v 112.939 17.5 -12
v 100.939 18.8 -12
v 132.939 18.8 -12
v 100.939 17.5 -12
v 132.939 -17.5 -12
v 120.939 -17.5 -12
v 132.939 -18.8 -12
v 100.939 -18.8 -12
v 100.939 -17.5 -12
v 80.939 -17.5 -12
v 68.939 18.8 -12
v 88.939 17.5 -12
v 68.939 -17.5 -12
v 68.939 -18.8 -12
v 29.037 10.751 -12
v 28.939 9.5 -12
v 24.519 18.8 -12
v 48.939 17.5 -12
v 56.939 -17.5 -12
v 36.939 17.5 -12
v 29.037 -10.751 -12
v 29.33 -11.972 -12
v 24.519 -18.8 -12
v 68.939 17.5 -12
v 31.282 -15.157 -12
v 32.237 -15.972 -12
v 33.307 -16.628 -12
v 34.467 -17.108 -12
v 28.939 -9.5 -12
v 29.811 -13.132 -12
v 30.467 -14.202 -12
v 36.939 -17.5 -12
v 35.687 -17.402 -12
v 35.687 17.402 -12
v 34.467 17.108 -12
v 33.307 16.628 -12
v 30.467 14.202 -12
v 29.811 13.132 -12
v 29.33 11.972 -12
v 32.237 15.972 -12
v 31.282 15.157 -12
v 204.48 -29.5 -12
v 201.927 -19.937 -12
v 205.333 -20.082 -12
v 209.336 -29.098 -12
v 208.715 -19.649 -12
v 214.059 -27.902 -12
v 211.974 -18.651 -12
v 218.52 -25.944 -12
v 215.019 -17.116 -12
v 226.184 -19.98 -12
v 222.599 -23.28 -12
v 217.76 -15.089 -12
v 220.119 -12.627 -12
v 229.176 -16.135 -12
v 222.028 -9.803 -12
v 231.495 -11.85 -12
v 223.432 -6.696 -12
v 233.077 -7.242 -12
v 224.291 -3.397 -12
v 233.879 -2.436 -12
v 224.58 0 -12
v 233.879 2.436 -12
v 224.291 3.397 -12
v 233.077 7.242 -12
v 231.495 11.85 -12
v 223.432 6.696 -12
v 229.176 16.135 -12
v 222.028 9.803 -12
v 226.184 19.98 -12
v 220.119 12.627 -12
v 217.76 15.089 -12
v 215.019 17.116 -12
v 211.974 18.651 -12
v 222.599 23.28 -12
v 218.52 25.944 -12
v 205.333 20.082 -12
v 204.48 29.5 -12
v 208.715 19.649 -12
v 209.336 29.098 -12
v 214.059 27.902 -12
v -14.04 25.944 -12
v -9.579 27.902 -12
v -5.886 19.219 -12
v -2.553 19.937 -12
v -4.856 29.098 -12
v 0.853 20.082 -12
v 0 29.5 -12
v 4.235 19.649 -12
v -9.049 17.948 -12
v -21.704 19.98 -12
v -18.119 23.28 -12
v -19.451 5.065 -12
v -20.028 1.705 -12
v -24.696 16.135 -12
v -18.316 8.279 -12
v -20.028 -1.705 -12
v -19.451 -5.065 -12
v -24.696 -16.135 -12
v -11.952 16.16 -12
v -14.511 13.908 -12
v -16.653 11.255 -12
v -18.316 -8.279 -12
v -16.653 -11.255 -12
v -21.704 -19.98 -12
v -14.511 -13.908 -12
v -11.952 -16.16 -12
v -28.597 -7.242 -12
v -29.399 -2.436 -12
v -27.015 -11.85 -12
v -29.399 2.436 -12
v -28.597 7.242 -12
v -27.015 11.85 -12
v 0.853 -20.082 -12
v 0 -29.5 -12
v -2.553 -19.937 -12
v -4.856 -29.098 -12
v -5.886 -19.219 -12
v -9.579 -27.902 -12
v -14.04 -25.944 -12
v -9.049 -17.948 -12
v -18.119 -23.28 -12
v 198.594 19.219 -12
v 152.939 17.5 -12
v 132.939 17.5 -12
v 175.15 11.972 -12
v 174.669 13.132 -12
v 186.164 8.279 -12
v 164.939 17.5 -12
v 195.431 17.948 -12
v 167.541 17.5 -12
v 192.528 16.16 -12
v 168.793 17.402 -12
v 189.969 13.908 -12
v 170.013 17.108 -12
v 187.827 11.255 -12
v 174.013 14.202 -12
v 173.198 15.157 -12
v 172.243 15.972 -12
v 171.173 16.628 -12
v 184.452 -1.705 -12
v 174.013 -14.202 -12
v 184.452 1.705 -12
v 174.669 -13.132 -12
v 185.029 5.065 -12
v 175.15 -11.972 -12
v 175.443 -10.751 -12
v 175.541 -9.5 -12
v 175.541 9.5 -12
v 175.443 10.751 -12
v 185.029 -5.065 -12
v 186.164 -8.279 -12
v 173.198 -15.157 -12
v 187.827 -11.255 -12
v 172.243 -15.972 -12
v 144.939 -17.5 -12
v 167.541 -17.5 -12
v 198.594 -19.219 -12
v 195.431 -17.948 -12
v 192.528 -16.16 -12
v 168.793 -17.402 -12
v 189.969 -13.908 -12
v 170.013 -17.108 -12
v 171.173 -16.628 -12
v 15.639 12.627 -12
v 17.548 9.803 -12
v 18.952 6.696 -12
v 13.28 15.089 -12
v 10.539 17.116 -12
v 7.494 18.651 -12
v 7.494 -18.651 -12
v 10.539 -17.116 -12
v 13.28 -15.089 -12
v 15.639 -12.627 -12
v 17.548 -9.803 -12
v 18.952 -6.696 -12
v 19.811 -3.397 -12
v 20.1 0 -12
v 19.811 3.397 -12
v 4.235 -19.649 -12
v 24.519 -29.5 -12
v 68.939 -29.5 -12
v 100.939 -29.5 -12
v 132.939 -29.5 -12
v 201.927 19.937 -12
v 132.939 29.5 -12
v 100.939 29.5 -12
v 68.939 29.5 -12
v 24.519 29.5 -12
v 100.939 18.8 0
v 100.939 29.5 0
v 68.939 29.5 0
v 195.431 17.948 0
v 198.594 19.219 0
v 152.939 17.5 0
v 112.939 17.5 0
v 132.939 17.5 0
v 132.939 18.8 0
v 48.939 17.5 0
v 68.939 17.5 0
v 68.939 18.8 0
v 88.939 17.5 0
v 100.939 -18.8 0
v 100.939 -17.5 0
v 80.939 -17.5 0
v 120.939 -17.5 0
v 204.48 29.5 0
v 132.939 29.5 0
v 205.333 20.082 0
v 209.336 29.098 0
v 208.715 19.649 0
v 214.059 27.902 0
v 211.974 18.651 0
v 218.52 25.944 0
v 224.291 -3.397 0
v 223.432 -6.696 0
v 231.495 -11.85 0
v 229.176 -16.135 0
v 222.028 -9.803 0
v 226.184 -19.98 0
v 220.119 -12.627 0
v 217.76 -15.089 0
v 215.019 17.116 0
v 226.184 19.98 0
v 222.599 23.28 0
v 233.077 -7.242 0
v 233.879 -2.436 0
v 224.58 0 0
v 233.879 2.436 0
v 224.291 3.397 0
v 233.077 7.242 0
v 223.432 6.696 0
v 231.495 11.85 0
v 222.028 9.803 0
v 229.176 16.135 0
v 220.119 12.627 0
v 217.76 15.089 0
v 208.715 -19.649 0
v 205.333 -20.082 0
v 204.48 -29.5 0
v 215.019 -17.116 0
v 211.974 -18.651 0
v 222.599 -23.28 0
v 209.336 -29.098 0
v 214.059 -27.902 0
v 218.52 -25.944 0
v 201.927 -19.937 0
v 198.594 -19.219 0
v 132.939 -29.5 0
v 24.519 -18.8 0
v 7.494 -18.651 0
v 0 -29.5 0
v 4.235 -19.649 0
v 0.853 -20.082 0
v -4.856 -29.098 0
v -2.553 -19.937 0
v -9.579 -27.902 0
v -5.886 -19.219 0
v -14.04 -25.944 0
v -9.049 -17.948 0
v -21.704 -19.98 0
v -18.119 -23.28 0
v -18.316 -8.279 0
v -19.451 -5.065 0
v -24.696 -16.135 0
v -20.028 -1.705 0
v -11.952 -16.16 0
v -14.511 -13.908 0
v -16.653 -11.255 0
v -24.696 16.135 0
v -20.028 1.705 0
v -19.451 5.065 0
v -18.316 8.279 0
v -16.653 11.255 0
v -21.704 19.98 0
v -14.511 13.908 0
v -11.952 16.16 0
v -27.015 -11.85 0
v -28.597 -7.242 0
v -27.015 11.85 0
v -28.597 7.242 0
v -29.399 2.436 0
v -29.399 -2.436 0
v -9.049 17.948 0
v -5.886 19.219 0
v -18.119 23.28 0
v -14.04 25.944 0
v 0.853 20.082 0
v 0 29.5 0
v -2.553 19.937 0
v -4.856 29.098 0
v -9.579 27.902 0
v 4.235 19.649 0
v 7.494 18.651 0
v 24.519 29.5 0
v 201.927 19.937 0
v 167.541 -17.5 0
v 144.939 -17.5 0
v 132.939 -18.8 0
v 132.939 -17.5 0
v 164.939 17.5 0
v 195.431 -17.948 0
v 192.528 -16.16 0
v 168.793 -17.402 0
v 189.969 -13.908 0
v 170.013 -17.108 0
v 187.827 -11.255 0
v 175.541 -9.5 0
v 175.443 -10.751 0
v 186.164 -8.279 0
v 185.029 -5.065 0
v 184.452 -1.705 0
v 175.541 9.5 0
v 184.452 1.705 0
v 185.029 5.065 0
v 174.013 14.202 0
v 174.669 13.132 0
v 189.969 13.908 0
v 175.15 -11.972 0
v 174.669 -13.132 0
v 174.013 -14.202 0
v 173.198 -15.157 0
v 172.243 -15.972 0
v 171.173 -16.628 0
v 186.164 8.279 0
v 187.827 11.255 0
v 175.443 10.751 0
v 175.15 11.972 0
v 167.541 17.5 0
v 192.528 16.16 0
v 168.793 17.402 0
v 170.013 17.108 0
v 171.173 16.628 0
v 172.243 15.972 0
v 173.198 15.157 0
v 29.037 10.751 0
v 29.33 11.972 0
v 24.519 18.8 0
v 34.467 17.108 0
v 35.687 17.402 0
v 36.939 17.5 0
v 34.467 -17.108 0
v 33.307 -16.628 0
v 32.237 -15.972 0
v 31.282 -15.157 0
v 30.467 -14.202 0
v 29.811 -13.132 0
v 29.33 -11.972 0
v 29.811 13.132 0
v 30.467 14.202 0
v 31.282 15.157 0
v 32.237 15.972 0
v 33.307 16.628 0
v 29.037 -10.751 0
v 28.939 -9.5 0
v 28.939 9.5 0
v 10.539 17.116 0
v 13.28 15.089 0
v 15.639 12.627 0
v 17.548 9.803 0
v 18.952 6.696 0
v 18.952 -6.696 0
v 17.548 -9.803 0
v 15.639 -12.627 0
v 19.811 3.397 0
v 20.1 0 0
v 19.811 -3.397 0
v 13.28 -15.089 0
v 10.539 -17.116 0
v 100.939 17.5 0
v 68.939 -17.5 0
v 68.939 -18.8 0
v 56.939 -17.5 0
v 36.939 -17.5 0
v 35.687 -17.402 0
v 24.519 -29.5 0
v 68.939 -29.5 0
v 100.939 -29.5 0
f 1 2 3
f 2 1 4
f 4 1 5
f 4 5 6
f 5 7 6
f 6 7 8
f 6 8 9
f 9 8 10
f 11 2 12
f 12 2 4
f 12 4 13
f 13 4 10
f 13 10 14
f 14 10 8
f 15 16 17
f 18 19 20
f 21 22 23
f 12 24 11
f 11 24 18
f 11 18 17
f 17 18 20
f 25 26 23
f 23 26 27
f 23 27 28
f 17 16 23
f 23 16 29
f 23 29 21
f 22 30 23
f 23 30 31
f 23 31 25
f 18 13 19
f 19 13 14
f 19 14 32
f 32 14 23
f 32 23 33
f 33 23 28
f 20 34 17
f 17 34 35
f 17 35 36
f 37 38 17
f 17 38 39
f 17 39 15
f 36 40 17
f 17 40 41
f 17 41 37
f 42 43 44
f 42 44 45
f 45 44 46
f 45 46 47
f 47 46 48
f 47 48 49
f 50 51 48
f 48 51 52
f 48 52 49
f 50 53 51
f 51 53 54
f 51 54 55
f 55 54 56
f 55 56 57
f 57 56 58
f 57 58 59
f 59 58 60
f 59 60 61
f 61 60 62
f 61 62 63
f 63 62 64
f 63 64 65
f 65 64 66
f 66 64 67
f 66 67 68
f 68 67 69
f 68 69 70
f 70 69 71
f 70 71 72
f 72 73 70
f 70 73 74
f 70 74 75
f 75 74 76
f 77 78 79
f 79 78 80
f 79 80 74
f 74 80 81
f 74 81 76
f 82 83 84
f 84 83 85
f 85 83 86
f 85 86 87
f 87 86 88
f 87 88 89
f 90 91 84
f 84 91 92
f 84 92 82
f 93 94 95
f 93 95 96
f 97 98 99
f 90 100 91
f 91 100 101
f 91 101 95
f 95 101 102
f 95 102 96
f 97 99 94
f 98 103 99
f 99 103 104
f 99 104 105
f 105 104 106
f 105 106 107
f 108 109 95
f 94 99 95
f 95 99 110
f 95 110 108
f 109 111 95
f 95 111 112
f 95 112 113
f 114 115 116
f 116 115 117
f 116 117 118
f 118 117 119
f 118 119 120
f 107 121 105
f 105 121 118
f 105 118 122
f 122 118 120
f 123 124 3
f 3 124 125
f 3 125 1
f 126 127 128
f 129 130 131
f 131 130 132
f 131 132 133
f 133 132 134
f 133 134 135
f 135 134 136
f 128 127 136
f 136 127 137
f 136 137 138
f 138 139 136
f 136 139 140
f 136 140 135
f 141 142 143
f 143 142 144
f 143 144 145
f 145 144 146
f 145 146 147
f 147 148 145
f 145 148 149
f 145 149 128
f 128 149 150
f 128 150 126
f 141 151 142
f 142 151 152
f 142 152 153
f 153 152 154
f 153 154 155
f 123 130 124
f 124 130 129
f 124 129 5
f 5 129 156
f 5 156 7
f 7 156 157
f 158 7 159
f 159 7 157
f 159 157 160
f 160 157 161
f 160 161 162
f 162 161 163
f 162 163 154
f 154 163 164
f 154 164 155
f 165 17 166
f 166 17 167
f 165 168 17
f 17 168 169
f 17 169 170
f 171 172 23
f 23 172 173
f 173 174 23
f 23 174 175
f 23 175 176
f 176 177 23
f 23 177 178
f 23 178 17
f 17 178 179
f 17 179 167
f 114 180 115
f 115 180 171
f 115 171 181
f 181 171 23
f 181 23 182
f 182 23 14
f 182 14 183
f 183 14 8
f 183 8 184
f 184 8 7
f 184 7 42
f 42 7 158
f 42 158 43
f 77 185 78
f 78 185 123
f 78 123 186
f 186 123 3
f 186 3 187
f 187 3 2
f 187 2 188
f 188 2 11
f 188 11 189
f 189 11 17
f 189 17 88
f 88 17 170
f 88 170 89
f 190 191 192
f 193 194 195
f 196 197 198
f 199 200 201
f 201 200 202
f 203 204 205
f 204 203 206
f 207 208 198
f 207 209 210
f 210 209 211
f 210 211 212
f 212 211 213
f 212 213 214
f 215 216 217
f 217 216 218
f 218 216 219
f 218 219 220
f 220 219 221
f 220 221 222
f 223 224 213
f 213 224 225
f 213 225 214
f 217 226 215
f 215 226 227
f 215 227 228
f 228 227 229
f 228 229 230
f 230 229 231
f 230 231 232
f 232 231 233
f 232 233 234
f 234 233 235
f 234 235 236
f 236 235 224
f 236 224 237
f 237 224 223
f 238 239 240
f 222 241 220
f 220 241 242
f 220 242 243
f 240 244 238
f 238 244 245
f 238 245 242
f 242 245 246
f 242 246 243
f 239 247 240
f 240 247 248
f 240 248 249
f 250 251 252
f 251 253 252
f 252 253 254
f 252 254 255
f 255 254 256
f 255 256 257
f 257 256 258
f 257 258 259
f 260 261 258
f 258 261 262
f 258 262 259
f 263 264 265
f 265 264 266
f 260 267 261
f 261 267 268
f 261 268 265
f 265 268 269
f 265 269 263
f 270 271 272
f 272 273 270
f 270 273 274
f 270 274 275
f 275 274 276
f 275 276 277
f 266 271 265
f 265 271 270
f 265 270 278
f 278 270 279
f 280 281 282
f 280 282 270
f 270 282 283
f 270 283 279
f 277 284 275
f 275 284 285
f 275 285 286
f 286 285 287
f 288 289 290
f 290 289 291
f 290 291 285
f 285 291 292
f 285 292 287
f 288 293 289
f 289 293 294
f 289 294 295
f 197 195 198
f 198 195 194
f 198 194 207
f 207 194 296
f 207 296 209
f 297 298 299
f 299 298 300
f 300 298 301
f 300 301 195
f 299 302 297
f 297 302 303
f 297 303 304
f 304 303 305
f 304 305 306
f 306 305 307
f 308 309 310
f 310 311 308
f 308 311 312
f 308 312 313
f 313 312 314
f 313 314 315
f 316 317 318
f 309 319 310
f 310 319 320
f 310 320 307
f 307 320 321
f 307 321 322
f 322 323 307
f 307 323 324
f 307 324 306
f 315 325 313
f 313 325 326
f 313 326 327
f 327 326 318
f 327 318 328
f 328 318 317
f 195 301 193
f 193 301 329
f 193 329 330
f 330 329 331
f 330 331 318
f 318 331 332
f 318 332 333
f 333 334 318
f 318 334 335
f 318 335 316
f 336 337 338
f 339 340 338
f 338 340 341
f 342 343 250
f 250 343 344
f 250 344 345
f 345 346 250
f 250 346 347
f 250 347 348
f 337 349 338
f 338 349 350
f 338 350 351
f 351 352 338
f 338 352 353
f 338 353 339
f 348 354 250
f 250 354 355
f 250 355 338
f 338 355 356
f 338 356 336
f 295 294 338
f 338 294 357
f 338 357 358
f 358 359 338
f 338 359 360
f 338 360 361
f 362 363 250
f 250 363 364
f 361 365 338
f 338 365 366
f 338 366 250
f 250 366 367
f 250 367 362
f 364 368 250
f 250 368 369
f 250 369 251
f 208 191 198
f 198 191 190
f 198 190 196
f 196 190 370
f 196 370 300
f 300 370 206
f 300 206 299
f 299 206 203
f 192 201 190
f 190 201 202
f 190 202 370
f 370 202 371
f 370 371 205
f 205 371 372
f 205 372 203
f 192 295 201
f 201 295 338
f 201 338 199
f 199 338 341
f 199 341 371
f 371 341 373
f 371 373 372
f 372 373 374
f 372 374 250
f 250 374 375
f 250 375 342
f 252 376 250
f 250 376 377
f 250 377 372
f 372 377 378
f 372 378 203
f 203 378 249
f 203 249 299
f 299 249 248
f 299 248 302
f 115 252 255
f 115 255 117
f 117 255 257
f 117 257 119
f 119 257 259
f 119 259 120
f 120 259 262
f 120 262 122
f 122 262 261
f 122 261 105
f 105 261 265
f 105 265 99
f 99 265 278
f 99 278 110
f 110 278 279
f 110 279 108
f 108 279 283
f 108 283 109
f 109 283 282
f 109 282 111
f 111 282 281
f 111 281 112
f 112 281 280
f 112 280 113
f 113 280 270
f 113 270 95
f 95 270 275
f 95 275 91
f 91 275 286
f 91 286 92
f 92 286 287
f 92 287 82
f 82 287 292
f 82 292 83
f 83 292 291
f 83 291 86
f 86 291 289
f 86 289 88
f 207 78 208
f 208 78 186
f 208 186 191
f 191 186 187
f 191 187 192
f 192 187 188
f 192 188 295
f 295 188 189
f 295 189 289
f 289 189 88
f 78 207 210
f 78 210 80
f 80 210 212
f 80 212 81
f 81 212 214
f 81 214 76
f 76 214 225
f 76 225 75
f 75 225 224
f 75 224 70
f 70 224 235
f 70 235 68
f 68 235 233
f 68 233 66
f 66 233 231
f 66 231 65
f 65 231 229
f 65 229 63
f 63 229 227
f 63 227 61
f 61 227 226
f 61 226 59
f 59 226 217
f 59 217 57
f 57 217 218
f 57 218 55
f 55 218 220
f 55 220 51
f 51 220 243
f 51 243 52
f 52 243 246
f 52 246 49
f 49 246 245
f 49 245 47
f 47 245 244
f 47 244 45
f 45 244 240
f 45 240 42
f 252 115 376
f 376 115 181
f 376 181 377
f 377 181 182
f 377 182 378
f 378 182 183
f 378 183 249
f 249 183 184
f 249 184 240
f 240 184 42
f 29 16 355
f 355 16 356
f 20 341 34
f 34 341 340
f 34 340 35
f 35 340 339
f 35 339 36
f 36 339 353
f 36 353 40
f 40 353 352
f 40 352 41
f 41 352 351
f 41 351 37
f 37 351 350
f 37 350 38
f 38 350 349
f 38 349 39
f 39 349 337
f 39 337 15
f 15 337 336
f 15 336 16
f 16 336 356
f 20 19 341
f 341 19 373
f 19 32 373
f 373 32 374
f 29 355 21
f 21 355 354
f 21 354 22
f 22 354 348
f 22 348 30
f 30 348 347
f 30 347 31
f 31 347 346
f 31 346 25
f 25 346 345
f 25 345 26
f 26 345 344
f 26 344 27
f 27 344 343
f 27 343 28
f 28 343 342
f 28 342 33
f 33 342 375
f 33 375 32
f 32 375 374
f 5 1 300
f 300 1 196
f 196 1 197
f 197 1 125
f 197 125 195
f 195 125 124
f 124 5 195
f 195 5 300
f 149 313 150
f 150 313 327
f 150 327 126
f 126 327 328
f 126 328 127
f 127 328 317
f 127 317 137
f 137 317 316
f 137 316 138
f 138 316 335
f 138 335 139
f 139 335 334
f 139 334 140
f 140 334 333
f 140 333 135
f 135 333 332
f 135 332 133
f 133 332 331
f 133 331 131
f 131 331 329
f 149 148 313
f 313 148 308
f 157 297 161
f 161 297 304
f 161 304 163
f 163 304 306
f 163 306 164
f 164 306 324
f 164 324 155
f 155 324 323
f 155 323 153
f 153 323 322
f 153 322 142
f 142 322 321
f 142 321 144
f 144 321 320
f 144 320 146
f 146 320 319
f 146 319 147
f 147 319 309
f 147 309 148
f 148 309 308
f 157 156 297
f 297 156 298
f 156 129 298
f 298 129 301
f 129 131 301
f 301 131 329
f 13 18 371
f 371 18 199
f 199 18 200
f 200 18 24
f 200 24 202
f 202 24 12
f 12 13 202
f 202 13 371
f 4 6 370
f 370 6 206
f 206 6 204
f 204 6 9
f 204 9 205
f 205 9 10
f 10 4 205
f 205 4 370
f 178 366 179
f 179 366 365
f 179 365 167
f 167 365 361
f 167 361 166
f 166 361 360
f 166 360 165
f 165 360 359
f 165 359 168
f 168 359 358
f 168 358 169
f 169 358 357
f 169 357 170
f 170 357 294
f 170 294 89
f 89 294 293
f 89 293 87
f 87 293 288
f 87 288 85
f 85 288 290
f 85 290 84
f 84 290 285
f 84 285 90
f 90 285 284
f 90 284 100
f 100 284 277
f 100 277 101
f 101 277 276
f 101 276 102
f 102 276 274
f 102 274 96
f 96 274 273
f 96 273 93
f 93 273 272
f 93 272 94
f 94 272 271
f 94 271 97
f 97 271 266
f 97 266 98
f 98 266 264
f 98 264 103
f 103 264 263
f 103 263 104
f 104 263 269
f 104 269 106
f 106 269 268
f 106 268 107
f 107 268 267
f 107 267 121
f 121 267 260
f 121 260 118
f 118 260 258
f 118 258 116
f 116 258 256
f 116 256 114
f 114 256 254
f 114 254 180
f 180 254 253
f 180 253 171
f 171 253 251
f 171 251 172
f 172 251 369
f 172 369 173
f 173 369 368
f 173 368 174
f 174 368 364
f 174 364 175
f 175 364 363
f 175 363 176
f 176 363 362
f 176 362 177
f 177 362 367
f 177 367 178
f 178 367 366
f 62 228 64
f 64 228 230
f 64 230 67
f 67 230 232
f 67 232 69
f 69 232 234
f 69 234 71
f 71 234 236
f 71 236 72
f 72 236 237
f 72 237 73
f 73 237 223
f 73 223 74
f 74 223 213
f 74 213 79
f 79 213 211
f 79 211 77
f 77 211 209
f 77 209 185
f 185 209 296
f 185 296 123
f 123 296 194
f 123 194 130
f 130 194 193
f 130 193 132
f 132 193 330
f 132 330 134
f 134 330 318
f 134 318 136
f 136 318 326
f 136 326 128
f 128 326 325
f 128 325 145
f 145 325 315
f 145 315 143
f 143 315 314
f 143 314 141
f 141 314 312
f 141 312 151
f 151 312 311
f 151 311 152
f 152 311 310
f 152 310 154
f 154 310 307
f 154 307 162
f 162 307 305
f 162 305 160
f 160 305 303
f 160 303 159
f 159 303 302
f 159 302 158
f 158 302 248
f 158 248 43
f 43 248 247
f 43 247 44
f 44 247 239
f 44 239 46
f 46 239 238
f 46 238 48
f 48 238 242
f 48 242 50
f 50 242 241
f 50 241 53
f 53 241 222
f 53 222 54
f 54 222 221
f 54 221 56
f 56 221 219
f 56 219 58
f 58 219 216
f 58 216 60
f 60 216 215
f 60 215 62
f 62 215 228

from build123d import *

# Parameters (mm, degrees)
BOSS_EXTRUDE2_DEPTH = 12
CUT_EXTRUDE4_DEPTH  = 12
SKETCH8_R           = 20.1
CUT_EXTRUDE5_DEPTH  = 19
SKETCH9_R           = 20.1
CUT_EXTRUDE6_DEPTH  = 19


with BuildPart() as part:
    # Sketch1 → Boss-Extrude2 (new body)
    with BuildSketch(Plane.XY):
        with BuildLine():
            Line((0, 29.5), (204.48, 29.5))
            ThreePointArc((204.48, 29.5), (233.98, 0), (204.48, -29.5))
            Line((204.48, -29.5), (0, -29.5))
            ThreePointArc((0, -29.5), (-29.5, 0), (0, 29.5))
        make_face()
    extrude(amount=-BOSS_EXTRUDE2_DEPTH)

    # Sketch7 → Cut-Extrude4 (cut)
    with BuildSketch(Plane.XY):
        with BuildLine():
            Line((56.938938215, -17.5), (36.938938215, 17.5))
            ThreePointArc((36.938938215, 17.5), (31.282083966, 15.156854249), (28.938938215, 9.5))
            Line((28.938938215, 9.5), (28.938938215, -9.5))
            ThreePointArc((28.938938215, -9.5), (31.282083966, -15.156854249), (36.938938215, -17.5))
            Line((36.938938215, -17.5), (56.938938215, -17.5))
        make_face()
        Polygon((88.938938215, 17.5), (48.938938215, 17.5), (68.938938215, -17.5), align=None)
        Polygon((120.938938215, -17.5), (100.938938215, 17.5), (80.938938215, -17.5), align=None)
        Polygon((152.938938215, 17.5), (112.938938215, 17.5), (132.938938215, -17.5), align=None)
        with BuildLine():
            Line((167.541061785, 17.5), (164.938938215, 17.5))
            Line((164.938938215, 17.5), (144.938938215, -17.5))
            Line((144.938938215, -17.5), (167.541061785, -17.5))
            ThreePointArc((167.541061785, -17.5), (173.197916034, -15.156854249), (175.541061785, -9.5))
            Line((175.541061785, -9.5), (175.541061785, 9.5))
            ThreePointArc((175.541061785, 9.5), (173.197916034, 15.156854249), (167.541061785, 17.5))
        make_face()
    extrude(amount=-CUT_EXTRUDE4_DEPTH, mode=Mode.SUBTRACT)

    # Sketch8 → Cut-Extrude5 (cut)
    with BuildSketch(Plane.XY):
        Circle(SKETCH8_R)
    extrude(amount=-CUT_EXTRUDE5_DEPTH, mode=Mode.SUBTRACT)

    # Sketch9 → Cut-Extrude6 (cut)
    with BuildSketch(Plane.XY):
        with Locations((204.48, 0)):
            Circle(SKETCH9_R)
    extrude(amount=-CUT_EXTRUDE6_DEPTH, mode=Mode.SUBTRACT)


solid = part.part
